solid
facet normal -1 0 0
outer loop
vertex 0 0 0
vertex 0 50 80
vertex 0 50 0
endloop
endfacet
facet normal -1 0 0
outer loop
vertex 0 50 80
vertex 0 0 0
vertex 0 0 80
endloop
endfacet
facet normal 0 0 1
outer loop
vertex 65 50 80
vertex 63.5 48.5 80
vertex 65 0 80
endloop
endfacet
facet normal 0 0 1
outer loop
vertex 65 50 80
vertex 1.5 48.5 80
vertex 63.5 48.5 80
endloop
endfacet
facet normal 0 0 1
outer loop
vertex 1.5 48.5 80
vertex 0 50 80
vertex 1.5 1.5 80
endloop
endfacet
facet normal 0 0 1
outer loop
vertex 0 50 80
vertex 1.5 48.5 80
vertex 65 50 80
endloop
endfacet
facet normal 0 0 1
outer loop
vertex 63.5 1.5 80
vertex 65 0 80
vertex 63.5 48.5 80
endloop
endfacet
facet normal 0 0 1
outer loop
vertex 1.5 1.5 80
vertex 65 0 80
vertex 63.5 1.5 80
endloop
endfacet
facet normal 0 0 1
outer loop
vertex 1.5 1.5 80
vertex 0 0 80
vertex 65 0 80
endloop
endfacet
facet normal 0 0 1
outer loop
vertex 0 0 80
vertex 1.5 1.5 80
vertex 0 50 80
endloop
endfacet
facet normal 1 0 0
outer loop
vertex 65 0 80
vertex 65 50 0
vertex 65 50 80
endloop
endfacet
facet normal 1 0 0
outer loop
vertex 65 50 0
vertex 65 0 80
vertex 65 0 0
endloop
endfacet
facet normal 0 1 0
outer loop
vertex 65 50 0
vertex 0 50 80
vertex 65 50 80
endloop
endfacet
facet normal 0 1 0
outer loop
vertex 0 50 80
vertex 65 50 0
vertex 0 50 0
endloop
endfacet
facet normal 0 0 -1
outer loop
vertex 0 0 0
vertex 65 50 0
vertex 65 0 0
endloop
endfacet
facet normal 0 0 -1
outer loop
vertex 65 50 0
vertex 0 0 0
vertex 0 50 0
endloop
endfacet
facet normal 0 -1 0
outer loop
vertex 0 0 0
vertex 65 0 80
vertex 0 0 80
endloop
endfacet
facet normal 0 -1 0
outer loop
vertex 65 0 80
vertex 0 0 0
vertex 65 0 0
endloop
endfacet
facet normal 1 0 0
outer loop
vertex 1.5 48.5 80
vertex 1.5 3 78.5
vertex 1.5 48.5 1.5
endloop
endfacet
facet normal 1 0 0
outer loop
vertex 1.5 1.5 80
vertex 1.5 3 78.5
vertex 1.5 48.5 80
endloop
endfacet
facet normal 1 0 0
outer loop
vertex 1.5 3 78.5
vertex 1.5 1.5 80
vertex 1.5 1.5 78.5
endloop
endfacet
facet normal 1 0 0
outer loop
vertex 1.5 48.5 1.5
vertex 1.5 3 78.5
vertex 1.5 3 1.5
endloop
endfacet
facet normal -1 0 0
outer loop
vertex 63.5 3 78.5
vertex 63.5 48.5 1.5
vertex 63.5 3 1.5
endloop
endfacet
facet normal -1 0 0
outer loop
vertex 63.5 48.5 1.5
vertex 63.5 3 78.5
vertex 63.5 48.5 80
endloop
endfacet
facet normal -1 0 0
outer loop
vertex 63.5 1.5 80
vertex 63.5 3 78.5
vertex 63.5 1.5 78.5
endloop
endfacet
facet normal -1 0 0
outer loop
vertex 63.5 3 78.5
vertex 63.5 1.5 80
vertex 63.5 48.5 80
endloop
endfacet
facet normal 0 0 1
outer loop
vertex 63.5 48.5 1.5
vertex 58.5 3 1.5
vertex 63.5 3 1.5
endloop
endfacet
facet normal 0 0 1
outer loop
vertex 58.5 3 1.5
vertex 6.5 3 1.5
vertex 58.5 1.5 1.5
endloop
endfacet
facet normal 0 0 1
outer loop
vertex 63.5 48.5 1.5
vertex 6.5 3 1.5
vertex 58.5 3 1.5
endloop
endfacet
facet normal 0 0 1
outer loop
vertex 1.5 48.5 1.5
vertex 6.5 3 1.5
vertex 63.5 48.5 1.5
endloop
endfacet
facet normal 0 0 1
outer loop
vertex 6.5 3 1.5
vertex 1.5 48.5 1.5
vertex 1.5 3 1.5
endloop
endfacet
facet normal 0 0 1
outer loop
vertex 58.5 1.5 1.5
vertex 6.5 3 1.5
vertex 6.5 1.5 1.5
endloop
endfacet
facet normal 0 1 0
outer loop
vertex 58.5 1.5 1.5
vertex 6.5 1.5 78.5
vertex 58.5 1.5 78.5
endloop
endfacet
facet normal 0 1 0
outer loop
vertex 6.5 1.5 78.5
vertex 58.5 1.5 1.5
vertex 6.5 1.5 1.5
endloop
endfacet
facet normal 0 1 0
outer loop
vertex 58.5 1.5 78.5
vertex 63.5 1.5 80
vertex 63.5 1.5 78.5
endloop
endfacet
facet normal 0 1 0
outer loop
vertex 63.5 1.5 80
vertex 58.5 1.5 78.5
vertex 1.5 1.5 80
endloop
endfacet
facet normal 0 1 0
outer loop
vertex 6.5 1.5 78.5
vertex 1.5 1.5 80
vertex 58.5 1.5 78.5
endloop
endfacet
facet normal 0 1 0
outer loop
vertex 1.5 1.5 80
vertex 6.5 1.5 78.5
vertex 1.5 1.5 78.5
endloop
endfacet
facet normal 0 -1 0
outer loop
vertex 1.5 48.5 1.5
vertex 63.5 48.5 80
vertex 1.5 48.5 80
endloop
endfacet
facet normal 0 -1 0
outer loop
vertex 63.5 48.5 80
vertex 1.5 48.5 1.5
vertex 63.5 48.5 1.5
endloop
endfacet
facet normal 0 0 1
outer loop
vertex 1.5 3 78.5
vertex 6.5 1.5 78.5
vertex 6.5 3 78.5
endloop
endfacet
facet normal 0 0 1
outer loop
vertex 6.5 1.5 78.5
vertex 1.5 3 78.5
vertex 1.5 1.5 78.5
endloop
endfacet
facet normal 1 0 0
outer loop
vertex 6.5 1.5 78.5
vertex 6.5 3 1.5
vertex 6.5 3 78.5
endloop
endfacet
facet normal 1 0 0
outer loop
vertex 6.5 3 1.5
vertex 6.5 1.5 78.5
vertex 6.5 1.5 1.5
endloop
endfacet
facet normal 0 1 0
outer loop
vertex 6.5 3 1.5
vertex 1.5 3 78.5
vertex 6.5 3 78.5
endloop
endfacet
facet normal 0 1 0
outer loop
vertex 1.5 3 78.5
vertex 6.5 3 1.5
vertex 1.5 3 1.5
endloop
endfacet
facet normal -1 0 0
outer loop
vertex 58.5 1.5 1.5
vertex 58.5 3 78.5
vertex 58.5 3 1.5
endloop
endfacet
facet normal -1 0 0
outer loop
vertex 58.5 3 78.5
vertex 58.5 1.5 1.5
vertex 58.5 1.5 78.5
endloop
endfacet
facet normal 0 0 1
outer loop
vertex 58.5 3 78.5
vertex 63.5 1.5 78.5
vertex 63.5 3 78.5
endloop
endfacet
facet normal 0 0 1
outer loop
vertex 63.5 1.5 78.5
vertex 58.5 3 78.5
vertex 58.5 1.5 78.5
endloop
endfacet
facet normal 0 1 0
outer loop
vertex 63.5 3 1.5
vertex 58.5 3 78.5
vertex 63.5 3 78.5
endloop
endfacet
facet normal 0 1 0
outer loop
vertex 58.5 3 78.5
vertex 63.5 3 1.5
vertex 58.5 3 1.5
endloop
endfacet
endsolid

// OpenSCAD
wb_width=65;
wb_depth=50;
wb_height=80;
wb_thickness=1.5;

slider_height=(wb_depth-wb_thickness-wb_thickness)/3-0.5;


difference() {
    cube([wb_width,wb_depth,wb_height]);


    translate([wb_thickness, wb_thickness, wb_thickness])
    cube([wb_width-wb_thickness*2,wb_depth-wb_thickness*2, wb_height]);

}

color("yellow")
translate([wb_thickness, wb_thickness, wb_thickness])
cube([5, wb_thickness, wb_height-wb_thickness-wb_thickness]);

color("yellow")
translate([wb_width-wb_thickness-5, wb_thickness, wb_thickness])
cube([5, wb_thickness, wb_height-wb_thickness-wb_thickness]);
